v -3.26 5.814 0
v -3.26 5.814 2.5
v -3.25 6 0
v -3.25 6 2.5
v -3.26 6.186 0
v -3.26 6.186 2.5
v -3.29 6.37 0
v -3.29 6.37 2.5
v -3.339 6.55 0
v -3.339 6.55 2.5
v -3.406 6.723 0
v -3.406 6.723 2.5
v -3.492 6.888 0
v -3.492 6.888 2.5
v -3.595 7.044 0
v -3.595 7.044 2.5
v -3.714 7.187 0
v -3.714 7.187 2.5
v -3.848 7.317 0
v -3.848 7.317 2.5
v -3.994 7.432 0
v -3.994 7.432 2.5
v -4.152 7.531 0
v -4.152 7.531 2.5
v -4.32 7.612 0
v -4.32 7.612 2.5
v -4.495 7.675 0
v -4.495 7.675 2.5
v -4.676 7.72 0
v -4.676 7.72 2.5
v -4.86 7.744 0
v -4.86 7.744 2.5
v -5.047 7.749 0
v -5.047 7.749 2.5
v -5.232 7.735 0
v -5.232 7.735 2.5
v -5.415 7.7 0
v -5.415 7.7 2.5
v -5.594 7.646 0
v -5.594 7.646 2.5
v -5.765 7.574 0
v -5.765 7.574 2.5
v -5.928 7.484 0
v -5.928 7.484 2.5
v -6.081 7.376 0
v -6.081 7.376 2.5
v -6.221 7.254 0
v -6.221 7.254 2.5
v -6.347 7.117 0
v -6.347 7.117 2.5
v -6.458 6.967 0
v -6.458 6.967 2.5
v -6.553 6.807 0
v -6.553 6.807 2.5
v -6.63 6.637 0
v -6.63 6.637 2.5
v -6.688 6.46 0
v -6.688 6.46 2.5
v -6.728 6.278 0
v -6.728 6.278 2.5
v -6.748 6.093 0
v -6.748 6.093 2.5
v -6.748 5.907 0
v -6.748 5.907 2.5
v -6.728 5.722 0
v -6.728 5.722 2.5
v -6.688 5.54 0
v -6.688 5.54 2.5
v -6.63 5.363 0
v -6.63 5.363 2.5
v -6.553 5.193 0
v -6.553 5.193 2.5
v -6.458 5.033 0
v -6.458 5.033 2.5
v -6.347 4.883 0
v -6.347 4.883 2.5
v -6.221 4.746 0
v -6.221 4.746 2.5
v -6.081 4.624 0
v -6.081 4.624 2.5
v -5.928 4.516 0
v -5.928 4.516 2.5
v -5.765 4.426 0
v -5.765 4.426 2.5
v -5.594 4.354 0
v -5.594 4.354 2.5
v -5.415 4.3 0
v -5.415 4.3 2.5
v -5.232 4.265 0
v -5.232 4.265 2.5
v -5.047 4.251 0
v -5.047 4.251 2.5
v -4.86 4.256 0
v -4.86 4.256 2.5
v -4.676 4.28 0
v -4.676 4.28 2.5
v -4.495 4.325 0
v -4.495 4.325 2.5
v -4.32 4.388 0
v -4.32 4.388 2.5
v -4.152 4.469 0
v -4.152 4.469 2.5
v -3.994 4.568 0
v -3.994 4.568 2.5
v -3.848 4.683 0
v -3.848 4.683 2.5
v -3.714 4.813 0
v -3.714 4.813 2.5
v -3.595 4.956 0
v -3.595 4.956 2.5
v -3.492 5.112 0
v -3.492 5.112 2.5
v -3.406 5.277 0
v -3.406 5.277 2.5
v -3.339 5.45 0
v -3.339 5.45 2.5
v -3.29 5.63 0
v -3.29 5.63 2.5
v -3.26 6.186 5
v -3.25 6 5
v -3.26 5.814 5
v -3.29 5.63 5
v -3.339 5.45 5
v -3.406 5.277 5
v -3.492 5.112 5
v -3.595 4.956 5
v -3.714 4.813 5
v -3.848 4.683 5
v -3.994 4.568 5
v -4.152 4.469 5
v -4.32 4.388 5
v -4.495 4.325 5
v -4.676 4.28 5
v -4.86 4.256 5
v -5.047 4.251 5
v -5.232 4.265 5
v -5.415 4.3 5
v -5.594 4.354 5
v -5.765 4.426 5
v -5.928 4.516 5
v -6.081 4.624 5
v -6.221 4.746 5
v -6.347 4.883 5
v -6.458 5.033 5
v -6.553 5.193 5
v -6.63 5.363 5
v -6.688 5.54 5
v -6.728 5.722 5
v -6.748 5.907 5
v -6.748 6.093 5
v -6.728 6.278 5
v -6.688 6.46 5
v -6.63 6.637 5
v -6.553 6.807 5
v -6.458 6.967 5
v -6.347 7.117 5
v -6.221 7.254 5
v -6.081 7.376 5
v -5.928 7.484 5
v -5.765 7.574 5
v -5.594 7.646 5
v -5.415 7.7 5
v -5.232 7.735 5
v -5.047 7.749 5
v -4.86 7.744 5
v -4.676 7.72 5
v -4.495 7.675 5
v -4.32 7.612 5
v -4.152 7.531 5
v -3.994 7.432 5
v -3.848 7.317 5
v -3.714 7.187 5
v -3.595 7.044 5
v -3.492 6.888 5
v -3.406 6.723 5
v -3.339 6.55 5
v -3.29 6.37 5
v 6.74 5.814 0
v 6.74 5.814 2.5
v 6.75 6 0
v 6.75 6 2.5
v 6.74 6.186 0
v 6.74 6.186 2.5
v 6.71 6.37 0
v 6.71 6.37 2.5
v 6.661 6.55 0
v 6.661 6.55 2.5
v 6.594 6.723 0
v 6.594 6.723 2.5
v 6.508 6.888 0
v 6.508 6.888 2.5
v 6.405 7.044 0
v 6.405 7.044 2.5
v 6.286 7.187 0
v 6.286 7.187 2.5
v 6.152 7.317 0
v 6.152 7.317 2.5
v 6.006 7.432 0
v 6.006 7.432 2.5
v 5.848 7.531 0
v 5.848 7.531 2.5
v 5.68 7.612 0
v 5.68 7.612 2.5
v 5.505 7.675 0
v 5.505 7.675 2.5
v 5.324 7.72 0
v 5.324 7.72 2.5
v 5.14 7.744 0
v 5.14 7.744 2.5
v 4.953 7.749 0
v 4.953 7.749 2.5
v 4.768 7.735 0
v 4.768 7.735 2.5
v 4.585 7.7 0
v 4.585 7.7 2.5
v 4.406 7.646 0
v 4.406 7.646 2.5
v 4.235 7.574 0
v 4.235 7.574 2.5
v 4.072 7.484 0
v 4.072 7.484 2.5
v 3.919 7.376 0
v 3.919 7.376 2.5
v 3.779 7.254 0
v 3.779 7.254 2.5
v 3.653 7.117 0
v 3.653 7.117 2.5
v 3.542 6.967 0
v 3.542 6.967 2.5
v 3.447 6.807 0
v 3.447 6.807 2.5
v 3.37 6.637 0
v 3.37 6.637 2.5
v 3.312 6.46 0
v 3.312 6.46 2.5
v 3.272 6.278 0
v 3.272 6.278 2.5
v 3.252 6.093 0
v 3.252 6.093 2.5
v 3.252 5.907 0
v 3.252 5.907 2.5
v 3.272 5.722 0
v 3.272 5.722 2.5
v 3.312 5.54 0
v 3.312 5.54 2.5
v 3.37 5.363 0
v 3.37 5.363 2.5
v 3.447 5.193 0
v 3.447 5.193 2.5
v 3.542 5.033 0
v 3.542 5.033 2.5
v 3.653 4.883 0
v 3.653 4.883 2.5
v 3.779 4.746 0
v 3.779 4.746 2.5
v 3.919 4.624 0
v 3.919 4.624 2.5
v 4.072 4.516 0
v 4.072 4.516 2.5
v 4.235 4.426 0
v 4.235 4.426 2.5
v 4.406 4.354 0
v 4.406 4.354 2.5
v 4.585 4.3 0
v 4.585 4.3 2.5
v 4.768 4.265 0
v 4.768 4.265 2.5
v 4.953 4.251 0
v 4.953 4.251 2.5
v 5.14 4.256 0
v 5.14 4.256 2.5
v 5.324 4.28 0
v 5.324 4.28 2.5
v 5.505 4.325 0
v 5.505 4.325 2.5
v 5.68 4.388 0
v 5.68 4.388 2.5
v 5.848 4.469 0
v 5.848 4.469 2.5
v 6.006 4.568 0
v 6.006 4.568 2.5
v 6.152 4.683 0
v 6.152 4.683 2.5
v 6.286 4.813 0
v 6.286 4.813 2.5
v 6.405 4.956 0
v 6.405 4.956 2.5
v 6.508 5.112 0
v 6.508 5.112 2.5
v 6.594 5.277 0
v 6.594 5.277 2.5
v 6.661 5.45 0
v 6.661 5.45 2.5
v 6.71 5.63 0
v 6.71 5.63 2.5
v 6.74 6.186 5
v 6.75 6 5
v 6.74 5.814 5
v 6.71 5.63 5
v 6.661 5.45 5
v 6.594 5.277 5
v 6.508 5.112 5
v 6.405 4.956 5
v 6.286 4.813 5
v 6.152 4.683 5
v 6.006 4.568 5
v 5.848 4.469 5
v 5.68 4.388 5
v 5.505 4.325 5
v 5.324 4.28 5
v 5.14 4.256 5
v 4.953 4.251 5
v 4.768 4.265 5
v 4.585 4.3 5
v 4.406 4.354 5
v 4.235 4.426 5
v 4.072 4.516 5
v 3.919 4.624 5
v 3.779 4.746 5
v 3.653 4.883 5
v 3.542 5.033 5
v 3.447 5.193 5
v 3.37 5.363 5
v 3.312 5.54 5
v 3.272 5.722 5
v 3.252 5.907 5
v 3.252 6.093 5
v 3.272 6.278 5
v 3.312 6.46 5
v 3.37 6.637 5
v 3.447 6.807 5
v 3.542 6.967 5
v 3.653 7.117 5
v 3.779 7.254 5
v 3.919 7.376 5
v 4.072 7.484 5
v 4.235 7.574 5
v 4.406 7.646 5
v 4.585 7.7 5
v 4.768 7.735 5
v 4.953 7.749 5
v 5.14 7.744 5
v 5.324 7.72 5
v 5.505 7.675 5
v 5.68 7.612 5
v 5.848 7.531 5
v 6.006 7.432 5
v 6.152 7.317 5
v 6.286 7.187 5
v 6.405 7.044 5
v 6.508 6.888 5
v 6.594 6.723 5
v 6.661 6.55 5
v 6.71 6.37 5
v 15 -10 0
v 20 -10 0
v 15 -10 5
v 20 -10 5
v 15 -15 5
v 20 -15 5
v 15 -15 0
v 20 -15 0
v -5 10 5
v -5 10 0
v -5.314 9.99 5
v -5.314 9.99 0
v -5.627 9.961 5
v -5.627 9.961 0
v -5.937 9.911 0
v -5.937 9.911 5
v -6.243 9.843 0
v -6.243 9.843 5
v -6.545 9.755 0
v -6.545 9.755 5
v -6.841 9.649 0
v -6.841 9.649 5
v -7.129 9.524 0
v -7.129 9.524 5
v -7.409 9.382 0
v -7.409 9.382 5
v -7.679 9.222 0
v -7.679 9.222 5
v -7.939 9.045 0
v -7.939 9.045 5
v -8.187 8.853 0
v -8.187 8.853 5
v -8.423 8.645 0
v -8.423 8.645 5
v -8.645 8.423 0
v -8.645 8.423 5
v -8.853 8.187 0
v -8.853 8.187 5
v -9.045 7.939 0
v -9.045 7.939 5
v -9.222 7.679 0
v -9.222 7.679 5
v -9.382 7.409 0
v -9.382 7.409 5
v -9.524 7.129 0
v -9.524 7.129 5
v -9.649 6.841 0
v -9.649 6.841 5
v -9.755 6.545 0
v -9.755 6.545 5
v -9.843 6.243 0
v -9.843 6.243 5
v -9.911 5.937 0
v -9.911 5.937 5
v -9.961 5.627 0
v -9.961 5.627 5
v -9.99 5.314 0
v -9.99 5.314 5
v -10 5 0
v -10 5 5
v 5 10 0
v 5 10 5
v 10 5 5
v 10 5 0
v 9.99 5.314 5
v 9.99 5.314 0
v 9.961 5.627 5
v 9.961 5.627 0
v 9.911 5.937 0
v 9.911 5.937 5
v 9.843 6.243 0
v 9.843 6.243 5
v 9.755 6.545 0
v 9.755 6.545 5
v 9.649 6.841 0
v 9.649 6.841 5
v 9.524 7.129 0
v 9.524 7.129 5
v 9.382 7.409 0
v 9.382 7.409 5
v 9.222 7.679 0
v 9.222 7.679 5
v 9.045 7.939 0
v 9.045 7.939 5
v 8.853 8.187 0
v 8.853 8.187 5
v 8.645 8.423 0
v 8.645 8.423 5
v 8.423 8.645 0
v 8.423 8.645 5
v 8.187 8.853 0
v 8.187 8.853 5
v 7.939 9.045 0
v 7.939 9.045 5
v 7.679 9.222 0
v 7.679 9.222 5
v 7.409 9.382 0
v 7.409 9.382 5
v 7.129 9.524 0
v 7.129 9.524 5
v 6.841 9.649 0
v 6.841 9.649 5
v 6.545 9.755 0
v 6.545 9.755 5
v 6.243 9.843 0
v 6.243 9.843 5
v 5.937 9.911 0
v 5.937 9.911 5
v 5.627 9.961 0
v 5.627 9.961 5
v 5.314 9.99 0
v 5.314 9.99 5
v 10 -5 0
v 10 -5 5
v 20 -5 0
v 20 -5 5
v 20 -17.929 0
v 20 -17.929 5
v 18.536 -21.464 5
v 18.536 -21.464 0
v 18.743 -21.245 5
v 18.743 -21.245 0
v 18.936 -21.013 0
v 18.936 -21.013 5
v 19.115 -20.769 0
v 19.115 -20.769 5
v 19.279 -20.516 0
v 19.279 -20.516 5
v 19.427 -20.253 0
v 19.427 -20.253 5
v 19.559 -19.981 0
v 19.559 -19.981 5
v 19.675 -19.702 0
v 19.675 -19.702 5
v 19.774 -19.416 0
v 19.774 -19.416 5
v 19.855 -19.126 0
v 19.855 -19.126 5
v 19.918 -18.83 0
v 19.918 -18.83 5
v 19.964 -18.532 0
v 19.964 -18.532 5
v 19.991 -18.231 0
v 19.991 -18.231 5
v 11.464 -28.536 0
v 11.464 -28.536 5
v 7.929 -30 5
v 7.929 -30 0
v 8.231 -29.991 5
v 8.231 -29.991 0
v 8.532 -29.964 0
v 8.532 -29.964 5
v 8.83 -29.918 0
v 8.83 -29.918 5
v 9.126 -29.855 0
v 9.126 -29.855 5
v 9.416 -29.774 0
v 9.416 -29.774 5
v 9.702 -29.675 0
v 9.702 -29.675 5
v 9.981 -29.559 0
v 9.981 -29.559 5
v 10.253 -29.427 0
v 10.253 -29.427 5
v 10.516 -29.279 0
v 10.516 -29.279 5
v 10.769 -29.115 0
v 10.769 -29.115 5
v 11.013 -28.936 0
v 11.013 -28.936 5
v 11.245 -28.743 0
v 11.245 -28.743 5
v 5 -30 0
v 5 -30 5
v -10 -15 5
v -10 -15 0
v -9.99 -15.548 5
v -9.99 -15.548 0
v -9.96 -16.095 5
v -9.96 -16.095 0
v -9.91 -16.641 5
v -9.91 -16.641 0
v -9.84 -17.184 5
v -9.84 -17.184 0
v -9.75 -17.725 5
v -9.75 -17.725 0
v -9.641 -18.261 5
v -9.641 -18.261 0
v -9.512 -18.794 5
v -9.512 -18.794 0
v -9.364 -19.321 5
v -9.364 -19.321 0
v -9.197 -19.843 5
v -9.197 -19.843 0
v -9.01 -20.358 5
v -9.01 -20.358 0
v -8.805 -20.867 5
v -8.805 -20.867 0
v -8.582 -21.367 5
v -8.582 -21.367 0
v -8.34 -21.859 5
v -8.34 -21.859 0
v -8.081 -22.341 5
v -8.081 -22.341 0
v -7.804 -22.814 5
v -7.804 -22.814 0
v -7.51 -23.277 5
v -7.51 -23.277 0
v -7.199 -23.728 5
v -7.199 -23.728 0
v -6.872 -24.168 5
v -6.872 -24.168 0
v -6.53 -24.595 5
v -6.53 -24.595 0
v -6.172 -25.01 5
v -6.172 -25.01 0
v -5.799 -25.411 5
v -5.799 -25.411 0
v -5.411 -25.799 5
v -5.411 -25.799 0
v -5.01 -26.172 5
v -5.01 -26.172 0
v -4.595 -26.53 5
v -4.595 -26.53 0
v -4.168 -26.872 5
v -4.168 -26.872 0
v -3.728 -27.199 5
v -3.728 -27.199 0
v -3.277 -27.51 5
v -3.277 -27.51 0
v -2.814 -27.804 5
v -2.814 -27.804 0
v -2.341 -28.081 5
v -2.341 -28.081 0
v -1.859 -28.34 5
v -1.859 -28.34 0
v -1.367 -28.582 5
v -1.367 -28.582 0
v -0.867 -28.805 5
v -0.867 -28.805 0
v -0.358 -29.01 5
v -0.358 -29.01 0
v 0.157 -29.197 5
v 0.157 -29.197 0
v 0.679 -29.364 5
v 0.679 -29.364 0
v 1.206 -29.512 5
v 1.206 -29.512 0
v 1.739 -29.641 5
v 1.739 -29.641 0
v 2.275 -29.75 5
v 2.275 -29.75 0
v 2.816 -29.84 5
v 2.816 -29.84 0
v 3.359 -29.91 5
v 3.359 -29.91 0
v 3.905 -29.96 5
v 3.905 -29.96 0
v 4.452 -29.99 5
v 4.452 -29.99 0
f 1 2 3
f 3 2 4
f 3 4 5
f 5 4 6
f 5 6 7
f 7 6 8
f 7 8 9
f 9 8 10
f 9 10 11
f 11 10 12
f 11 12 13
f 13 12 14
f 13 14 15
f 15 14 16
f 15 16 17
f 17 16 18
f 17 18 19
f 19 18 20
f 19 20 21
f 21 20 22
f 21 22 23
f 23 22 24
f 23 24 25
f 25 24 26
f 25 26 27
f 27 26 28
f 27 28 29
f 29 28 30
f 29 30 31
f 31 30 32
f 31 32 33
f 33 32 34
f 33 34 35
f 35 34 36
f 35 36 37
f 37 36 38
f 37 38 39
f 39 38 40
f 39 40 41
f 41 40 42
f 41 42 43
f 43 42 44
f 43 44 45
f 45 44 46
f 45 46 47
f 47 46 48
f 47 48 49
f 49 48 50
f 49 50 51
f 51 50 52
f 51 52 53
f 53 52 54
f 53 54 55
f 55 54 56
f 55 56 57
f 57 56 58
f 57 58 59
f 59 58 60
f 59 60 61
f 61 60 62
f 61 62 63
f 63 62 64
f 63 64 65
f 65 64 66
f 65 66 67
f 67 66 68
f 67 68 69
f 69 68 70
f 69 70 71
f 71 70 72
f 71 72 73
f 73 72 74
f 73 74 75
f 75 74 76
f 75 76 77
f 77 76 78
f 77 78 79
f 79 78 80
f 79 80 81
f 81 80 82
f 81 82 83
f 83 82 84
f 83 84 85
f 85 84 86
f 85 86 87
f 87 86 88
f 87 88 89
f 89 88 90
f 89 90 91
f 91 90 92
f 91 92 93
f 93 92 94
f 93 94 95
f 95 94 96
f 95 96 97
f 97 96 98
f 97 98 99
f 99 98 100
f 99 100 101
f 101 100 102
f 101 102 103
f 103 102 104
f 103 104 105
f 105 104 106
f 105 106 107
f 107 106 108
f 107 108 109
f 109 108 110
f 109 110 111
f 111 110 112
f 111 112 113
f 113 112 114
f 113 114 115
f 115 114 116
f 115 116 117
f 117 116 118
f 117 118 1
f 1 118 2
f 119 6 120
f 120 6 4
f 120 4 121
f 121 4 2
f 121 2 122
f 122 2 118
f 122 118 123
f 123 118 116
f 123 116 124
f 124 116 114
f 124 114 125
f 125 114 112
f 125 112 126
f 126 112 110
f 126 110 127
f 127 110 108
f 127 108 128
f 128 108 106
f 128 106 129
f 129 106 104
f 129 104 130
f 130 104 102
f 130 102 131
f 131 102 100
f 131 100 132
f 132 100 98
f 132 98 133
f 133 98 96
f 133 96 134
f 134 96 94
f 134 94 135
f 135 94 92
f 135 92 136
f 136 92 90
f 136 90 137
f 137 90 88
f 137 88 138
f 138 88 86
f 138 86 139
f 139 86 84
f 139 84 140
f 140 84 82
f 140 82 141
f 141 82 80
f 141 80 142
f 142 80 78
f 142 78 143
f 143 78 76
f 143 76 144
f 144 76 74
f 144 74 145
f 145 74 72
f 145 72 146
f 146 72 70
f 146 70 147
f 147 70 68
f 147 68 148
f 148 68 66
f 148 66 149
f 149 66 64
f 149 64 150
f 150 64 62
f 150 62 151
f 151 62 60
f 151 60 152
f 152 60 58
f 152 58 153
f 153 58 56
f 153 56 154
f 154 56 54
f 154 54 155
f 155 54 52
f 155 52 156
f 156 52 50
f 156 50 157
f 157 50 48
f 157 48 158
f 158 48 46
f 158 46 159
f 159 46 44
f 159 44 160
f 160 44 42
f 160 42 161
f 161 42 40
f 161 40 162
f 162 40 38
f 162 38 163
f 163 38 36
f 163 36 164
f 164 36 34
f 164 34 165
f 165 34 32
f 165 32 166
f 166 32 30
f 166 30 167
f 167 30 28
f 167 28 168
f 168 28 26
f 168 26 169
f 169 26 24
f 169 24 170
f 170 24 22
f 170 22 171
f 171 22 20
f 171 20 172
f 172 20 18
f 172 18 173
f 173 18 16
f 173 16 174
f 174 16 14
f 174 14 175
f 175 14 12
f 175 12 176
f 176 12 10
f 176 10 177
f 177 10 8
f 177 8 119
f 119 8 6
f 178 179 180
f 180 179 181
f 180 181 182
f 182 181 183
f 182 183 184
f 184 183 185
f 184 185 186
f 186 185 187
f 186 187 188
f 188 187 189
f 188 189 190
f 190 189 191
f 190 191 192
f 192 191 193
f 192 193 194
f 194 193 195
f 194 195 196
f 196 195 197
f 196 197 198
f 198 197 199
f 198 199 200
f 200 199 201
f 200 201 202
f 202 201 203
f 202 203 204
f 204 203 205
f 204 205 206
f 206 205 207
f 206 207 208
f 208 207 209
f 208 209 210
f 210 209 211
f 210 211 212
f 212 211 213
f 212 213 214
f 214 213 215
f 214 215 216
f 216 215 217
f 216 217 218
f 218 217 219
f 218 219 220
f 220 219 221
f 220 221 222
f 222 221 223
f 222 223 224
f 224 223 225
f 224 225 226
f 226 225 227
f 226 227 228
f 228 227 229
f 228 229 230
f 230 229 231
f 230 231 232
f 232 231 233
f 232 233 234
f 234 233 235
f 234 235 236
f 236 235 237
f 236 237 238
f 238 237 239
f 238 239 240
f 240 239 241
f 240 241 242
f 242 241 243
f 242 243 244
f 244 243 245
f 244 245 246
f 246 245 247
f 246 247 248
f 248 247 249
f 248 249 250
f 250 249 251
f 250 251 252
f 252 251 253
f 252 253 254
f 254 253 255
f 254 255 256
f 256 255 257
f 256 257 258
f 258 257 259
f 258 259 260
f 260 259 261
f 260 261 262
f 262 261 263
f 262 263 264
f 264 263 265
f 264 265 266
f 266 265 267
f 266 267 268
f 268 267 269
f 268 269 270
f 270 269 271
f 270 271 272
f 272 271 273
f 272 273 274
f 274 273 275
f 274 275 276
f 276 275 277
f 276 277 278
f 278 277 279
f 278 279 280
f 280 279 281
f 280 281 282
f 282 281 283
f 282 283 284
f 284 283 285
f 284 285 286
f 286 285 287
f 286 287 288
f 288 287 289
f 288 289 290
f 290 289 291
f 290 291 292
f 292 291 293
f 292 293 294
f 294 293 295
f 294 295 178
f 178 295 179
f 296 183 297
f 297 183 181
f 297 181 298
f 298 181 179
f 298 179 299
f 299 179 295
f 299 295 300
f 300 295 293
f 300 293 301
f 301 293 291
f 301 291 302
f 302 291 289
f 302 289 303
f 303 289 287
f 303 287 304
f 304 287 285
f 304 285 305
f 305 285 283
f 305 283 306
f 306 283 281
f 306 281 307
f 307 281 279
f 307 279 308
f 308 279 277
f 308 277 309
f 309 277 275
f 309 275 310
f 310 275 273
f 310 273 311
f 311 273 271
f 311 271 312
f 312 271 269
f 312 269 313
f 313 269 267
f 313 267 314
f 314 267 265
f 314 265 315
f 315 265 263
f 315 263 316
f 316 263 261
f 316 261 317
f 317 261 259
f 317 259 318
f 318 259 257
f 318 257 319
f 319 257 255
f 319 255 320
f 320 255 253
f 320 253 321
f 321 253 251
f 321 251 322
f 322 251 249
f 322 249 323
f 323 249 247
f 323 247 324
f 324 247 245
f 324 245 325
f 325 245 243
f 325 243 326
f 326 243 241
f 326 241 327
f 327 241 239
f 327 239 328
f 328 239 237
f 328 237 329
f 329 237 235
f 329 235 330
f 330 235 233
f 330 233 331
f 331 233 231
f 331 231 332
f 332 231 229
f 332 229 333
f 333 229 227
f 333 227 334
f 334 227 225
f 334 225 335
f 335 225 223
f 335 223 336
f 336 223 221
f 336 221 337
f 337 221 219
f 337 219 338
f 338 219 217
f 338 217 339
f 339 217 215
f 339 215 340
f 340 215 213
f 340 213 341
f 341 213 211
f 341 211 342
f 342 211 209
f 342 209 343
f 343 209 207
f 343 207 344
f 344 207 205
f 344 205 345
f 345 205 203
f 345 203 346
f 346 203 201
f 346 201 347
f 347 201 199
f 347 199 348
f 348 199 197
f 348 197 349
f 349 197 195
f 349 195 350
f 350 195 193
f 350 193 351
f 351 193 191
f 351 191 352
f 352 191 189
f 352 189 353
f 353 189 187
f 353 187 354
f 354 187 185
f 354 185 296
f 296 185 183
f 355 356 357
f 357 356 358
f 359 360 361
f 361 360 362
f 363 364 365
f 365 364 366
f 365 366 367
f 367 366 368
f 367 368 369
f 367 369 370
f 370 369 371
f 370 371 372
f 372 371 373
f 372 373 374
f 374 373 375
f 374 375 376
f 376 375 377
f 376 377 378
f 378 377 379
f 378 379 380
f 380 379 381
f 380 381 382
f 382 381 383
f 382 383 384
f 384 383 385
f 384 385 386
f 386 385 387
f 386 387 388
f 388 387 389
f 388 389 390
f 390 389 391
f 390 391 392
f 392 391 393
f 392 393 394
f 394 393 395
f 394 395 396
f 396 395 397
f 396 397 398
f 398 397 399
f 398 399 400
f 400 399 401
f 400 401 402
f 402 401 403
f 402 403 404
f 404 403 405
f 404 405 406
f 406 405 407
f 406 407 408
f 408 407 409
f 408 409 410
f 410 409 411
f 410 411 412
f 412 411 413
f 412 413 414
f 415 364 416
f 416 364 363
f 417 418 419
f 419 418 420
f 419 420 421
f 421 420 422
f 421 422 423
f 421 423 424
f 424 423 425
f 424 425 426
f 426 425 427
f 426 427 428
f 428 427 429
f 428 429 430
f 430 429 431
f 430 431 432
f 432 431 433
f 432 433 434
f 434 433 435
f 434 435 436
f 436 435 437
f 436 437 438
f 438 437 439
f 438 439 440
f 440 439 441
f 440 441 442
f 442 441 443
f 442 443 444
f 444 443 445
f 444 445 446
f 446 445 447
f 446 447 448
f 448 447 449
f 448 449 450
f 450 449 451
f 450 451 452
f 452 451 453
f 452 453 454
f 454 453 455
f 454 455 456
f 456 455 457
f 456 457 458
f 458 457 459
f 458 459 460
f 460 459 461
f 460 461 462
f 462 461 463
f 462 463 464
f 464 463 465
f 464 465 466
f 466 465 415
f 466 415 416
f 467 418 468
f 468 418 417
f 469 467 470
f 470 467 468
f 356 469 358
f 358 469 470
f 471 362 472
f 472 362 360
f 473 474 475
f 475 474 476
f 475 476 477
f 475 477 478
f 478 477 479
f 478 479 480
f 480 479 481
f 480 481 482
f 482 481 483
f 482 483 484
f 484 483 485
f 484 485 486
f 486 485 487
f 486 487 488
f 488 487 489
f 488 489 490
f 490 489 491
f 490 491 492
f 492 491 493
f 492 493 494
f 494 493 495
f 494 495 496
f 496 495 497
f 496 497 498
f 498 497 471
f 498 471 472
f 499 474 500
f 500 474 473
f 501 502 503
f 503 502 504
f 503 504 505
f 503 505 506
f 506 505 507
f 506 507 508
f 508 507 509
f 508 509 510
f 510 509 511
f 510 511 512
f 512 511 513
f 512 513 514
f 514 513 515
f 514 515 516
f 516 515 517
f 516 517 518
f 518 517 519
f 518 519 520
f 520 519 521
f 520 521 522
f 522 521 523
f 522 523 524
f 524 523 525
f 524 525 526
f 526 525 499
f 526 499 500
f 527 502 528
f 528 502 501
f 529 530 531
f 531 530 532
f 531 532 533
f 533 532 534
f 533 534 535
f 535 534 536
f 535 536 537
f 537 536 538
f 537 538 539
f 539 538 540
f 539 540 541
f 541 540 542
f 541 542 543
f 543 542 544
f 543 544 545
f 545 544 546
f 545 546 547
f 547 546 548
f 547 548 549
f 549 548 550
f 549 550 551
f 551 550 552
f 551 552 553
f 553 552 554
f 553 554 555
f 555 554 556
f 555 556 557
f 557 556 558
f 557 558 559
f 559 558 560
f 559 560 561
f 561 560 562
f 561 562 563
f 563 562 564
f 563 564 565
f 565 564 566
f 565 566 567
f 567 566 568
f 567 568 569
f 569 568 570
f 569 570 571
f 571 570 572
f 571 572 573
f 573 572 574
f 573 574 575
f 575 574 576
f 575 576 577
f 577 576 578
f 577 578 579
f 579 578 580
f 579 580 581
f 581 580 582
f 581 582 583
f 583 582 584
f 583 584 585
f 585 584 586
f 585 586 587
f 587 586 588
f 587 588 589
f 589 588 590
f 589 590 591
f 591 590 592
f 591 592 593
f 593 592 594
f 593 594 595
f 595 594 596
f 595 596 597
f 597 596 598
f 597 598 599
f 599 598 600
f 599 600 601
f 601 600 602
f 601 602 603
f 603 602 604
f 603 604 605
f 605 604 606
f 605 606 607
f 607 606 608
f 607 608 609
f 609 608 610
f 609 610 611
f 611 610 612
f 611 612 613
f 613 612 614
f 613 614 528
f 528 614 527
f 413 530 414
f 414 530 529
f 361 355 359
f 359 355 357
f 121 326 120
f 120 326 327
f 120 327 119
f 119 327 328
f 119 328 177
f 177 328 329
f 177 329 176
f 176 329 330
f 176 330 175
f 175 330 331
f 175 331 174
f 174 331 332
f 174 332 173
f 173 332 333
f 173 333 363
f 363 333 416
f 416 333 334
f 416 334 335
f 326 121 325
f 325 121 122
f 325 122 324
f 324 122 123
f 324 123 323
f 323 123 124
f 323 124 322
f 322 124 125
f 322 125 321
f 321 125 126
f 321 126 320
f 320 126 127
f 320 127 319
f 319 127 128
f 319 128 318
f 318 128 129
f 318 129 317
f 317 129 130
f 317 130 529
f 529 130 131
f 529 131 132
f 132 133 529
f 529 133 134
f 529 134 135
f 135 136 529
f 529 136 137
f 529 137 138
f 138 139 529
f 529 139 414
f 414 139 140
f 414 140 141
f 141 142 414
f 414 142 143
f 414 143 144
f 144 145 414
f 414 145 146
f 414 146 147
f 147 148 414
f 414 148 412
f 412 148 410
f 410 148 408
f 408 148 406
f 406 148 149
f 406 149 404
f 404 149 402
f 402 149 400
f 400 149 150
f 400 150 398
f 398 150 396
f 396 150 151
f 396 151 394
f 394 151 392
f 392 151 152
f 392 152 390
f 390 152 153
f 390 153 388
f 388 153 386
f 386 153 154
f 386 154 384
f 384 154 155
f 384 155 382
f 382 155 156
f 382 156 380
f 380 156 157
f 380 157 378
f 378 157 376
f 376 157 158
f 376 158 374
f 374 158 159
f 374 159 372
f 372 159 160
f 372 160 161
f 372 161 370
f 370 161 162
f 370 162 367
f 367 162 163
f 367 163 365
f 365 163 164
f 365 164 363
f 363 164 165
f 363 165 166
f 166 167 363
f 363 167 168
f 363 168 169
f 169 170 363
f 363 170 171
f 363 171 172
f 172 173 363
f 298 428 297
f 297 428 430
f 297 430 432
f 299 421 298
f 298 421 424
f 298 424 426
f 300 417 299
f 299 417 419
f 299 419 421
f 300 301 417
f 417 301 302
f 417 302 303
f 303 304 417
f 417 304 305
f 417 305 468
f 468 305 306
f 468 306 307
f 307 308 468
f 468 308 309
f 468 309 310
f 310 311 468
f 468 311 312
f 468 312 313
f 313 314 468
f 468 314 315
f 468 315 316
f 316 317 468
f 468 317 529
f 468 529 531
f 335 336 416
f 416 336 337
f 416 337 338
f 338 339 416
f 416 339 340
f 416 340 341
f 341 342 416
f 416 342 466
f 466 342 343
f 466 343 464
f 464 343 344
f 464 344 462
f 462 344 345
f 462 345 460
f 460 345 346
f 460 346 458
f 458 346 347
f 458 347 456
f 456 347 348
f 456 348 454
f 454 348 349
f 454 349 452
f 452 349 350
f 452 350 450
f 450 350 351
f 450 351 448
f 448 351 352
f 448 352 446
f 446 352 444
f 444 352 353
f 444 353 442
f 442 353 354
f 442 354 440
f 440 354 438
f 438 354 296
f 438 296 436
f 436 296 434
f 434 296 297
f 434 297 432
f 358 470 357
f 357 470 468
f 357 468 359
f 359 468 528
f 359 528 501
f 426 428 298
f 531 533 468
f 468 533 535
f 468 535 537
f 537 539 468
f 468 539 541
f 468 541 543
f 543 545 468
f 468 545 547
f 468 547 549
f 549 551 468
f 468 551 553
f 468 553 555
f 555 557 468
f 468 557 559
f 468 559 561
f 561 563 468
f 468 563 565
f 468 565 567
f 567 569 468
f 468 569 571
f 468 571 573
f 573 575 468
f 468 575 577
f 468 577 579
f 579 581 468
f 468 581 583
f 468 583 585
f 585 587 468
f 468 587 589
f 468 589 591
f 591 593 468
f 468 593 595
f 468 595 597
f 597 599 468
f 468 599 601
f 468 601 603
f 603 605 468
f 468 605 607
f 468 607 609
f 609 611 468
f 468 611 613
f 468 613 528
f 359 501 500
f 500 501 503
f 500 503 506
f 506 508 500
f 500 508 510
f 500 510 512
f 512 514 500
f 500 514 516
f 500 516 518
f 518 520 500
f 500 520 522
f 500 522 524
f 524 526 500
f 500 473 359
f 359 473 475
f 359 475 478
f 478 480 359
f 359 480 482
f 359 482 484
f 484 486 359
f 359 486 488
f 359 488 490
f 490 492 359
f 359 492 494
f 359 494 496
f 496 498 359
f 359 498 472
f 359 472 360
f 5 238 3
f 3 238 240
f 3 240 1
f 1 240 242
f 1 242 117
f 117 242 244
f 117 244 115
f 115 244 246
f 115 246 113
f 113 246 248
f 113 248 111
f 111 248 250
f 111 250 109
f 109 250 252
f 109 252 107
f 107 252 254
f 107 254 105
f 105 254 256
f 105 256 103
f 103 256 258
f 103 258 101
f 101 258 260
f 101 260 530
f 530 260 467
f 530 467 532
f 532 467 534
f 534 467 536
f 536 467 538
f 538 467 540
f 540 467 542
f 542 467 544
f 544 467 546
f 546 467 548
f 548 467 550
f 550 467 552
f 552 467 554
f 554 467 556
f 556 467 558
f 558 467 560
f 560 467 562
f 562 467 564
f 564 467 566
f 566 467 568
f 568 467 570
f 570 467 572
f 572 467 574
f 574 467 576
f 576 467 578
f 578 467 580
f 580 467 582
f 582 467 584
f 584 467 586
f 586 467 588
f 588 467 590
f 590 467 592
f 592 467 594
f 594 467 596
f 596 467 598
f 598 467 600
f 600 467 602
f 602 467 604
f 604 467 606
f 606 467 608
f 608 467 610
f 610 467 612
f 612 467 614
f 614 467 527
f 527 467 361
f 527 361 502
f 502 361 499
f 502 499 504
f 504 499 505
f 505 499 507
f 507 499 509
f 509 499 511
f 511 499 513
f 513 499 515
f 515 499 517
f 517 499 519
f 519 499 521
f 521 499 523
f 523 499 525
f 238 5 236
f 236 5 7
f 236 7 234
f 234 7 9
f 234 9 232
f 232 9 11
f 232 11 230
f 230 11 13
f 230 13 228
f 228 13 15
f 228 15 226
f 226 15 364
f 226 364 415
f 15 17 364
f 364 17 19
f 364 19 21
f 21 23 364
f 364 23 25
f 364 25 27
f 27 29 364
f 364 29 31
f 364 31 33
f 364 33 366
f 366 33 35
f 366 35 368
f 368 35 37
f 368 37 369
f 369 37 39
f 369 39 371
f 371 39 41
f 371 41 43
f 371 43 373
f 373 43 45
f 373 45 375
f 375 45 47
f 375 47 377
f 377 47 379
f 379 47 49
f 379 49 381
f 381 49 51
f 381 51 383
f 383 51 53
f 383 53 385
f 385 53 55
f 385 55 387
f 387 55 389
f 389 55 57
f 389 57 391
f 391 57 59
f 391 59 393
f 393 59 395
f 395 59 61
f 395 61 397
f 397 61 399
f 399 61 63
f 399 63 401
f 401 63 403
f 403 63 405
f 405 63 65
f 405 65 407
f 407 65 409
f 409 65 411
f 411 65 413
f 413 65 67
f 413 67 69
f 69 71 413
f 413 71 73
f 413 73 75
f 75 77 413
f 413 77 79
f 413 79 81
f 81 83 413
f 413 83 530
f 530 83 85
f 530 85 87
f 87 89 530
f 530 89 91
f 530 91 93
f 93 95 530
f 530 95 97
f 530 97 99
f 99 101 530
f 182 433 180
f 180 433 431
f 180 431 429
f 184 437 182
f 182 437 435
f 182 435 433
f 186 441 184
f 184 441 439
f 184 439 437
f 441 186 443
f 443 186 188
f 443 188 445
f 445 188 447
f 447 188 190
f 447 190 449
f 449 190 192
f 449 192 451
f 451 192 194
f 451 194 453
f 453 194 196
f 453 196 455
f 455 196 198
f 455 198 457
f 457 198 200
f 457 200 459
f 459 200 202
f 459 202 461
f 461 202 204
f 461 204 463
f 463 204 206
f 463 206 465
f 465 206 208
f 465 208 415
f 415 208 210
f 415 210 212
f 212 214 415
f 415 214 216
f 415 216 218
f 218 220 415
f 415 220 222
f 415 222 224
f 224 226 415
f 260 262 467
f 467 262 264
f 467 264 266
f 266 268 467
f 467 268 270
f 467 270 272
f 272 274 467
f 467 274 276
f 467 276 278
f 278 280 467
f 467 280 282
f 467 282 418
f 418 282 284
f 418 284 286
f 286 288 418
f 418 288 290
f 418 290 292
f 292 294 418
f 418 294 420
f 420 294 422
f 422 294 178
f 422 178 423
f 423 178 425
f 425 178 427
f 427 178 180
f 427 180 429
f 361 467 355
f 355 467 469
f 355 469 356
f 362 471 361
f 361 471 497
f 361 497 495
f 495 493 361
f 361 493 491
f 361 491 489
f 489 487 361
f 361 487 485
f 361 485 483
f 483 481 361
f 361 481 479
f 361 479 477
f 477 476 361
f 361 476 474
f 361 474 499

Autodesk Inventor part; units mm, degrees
ref_plane "YZ Plane" through (0, 0, 0) normal (1, 0, 0) x (0, 1, 0)
ref_plane "XZ Plane" through (0, 0, 0) normal (0, 1, 0) x (-1, 0, 0)
ref_plane "XY Plane" through (0, 0, 0) normal (0, 0, 1) x (1, 0, 0)
sketch "Sketch1" plane through (0, 0, 0) normal (0, 0, 1) x (1, 0, 0)
  line L0 (0, 0) -> (-10, 0)
  line L1 (-10, 0) -> (-10, 5)
  line L2 (-5, 10) -> (5, 10)
  line L3 (10, 5) -> (10, -5)
  line L4 (10, -5) -> (20, -5)
  line L5 (20, -5) -> (20, -10)
  line L6 (20, -10) -> (10, -10)
  line L7 (10, -10) -> (10, -15)
  line L8 (10, -15) -> (20, -15)
  line L9 (20, -15) -> (20, -17.9289)
  line L10 (18.5355, -21.4645) -> (11.4645, -28.5355)
  line L11 (7.9289, -30) -> (5, -30)
  line L12 (-10, -15) -> (-10, 0)
  arc A0 (-5, 10) -> (-10, 5) centre (-5, 5) ccw
  arc A1 (10, 5) -> (5, 10) centre (5, 5) ccw
  arc A2 (-10, -15) -> (5, -30) centre (5, -15) ccw
  arc A3 (7.9289, -30) -> (11.4645, -28.5355) centre (7.9289, -25) ccw
  arc A4 (18.5355, -21.4645) -> (20, -17.9289) centre (15, -17.9289) ccw
  line L13 (10, -10) -> (15, -10)
  line L14 (15, -10) -> (15, -15)
  point P0 (-10, 10)
  point P1 (10, 10)
  point P2 (20, -20)
  point P3 (10, -30)
  dimension "d0" = 10
  dimension "d1" = 10
  dimension "d2" = 20
  dimension "d3" = 15
  dimension "d4" = 10
  dimension "d5" = 5
  dimension "d6" = 5
  dimension "d7" = 5
  dimension "d8" = 135
  dimension "d9" = 5
  dimension "d10" = 15
  dimension "d11" = 5
  dimension "d21" = 5
extrude "Extrusion1" add sketch "Sketch1" along normal blind 5
sketch "Sketch2" plane through (0, 0, 5) normal (0, 0, 1) x (1, 0, 0)
  line L0 (0, 0) -> (0, 6)
  line L1 (0, 6) -> (5, 6)
  line L2 (5, 6) -> (-5, 6)
  circle A0 centre (-5, 6) radius 1.75
  circle A1 centre (5, 6) radius 1.75
  dimension "d14" = 6
  dimension "d15" = 5
  dimension "d16" = 10
  dimension "d17" = 3.5
  dimension "d18" = 3.5
extrude "Extrusion2" cut sketch "Sketch2" against normal blind 5
properties part number "holdBar"
